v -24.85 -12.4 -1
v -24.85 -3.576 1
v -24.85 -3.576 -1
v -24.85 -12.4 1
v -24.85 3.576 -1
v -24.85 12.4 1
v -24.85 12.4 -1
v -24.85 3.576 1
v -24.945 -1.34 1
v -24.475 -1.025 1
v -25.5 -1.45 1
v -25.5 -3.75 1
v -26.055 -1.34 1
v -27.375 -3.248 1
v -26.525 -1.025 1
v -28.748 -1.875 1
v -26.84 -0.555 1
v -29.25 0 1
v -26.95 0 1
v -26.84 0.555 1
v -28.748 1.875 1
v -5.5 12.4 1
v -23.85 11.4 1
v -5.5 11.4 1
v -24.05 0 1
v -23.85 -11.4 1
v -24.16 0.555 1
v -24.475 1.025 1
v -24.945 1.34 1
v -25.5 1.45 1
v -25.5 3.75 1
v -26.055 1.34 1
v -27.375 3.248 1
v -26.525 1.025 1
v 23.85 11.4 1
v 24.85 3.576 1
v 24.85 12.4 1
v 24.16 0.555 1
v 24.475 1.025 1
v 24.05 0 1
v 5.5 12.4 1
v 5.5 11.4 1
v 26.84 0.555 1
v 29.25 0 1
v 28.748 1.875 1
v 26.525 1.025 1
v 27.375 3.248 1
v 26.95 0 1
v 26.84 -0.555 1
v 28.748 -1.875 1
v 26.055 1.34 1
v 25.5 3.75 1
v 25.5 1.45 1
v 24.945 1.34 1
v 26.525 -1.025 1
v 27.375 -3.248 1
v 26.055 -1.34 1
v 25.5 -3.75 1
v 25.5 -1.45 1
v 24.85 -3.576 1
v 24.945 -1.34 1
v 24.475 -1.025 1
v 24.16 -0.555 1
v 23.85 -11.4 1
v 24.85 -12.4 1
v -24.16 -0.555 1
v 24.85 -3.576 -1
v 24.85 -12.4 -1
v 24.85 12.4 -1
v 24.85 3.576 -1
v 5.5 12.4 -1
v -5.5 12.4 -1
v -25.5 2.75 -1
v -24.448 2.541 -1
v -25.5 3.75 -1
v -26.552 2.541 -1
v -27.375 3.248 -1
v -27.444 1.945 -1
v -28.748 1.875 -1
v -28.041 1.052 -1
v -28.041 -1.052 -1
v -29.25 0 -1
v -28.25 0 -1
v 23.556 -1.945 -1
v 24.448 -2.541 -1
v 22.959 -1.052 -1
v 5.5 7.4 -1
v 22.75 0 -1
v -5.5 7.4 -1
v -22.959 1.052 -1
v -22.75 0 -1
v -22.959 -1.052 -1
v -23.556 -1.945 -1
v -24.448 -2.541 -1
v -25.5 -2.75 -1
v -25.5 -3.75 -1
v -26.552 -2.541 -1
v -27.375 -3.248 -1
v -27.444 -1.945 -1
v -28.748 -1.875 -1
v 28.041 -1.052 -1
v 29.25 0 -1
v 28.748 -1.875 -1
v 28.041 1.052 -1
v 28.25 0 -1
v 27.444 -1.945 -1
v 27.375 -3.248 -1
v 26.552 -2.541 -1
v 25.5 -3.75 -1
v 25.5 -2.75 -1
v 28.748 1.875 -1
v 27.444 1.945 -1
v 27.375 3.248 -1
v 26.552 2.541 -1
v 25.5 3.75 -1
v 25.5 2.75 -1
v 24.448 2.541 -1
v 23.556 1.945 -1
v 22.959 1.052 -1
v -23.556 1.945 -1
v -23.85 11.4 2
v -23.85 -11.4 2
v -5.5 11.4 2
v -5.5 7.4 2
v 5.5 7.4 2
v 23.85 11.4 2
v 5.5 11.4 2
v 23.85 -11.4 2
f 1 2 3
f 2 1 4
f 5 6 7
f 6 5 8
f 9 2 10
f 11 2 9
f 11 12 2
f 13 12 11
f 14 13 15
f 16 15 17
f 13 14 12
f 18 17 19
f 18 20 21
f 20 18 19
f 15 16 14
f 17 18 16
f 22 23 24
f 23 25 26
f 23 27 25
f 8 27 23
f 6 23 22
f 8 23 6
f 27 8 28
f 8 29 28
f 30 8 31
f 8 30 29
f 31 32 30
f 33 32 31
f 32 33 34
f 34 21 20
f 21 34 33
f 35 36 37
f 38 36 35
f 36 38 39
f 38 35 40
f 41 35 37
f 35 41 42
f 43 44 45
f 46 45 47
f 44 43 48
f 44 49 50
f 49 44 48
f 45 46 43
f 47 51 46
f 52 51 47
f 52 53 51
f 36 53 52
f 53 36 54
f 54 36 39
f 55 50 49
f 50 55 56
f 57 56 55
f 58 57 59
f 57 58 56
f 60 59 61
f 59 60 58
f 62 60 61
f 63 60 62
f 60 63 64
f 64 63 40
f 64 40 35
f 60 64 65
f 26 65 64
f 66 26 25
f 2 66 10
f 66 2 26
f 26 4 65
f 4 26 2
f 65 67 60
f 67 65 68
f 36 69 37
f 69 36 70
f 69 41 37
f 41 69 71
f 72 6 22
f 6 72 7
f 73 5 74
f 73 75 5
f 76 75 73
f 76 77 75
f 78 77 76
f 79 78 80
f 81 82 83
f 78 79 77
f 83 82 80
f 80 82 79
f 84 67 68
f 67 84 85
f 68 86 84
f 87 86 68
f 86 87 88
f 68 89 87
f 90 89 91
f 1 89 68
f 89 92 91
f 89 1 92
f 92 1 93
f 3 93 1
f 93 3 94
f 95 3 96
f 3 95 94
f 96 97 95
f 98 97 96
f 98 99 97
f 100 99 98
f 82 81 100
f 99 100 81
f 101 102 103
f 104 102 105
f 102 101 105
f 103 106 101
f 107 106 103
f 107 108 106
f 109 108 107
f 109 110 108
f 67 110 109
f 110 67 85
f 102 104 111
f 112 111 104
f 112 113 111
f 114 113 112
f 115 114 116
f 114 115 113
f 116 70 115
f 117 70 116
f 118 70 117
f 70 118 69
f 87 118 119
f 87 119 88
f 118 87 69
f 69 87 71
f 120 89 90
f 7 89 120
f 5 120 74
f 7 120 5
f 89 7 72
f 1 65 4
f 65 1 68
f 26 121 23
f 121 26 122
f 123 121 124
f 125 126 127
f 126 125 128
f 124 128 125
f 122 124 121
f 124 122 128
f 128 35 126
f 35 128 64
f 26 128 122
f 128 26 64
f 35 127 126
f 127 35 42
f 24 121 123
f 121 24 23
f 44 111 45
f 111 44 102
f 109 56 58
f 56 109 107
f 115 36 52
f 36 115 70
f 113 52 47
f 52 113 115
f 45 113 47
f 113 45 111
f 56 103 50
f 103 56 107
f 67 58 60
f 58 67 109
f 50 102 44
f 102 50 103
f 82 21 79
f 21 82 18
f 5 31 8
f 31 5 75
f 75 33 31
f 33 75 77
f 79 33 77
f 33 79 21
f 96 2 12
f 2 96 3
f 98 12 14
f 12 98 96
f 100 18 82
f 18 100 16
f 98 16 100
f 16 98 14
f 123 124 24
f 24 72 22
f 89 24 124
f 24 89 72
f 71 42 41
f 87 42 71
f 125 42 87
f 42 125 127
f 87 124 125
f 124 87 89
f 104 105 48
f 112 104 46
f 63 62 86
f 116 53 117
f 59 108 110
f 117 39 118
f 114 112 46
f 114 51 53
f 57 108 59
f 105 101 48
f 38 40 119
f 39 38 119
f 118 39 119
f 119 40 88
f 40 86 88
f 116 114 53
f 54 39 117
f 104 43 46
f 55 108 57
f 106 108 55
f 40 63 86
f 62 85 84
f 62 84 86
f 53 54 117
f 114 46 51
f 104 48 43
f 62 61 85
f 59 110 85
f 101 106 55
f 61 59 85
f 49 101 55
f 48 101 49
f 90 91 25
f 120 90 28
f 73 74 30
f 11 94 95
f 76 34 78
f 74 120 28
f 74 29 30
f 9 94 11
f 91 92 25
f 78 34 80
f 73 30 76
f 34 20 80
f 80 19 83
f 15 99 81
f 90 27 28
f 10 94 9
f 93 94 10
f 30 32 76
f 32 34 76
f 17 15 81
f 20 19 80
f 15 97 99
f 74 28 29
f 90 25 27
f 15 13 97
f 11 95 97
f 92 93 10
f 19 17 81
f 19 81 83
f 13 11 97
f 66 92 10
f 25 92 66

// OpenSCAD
difference(){
  union(){
    cube([49.7, 24.8, 2], center = true);
    
    //Falz
    translate([0, 0, 1.5])cube([47.7, 22.8, 1], center = true);
    
    // Zylinder für Schrauben ohne Mittelloch
    translate([ 25.5, 0, 0])cylinder(h=2, r=3.75, center = true);
    translate([-25.5, 0, 0])cylinder(h=2, r=3.75, center = true);
  }
  

  
  // Eckiges Loch für Pins
  translate([0, 9.9,  0.5])cube([11, 5, 3], center = true);
  
  
  // Senke für Schrauben
  translate([ 25.5, 0, 0])cylinder($fn=16, h=2, r1=2.75, r2=1.45, center = true);
  translate([-25.5, 0, 0])cylinder($fn=16, h=2, r1=2.75, r2=1.45, center = true);
}
